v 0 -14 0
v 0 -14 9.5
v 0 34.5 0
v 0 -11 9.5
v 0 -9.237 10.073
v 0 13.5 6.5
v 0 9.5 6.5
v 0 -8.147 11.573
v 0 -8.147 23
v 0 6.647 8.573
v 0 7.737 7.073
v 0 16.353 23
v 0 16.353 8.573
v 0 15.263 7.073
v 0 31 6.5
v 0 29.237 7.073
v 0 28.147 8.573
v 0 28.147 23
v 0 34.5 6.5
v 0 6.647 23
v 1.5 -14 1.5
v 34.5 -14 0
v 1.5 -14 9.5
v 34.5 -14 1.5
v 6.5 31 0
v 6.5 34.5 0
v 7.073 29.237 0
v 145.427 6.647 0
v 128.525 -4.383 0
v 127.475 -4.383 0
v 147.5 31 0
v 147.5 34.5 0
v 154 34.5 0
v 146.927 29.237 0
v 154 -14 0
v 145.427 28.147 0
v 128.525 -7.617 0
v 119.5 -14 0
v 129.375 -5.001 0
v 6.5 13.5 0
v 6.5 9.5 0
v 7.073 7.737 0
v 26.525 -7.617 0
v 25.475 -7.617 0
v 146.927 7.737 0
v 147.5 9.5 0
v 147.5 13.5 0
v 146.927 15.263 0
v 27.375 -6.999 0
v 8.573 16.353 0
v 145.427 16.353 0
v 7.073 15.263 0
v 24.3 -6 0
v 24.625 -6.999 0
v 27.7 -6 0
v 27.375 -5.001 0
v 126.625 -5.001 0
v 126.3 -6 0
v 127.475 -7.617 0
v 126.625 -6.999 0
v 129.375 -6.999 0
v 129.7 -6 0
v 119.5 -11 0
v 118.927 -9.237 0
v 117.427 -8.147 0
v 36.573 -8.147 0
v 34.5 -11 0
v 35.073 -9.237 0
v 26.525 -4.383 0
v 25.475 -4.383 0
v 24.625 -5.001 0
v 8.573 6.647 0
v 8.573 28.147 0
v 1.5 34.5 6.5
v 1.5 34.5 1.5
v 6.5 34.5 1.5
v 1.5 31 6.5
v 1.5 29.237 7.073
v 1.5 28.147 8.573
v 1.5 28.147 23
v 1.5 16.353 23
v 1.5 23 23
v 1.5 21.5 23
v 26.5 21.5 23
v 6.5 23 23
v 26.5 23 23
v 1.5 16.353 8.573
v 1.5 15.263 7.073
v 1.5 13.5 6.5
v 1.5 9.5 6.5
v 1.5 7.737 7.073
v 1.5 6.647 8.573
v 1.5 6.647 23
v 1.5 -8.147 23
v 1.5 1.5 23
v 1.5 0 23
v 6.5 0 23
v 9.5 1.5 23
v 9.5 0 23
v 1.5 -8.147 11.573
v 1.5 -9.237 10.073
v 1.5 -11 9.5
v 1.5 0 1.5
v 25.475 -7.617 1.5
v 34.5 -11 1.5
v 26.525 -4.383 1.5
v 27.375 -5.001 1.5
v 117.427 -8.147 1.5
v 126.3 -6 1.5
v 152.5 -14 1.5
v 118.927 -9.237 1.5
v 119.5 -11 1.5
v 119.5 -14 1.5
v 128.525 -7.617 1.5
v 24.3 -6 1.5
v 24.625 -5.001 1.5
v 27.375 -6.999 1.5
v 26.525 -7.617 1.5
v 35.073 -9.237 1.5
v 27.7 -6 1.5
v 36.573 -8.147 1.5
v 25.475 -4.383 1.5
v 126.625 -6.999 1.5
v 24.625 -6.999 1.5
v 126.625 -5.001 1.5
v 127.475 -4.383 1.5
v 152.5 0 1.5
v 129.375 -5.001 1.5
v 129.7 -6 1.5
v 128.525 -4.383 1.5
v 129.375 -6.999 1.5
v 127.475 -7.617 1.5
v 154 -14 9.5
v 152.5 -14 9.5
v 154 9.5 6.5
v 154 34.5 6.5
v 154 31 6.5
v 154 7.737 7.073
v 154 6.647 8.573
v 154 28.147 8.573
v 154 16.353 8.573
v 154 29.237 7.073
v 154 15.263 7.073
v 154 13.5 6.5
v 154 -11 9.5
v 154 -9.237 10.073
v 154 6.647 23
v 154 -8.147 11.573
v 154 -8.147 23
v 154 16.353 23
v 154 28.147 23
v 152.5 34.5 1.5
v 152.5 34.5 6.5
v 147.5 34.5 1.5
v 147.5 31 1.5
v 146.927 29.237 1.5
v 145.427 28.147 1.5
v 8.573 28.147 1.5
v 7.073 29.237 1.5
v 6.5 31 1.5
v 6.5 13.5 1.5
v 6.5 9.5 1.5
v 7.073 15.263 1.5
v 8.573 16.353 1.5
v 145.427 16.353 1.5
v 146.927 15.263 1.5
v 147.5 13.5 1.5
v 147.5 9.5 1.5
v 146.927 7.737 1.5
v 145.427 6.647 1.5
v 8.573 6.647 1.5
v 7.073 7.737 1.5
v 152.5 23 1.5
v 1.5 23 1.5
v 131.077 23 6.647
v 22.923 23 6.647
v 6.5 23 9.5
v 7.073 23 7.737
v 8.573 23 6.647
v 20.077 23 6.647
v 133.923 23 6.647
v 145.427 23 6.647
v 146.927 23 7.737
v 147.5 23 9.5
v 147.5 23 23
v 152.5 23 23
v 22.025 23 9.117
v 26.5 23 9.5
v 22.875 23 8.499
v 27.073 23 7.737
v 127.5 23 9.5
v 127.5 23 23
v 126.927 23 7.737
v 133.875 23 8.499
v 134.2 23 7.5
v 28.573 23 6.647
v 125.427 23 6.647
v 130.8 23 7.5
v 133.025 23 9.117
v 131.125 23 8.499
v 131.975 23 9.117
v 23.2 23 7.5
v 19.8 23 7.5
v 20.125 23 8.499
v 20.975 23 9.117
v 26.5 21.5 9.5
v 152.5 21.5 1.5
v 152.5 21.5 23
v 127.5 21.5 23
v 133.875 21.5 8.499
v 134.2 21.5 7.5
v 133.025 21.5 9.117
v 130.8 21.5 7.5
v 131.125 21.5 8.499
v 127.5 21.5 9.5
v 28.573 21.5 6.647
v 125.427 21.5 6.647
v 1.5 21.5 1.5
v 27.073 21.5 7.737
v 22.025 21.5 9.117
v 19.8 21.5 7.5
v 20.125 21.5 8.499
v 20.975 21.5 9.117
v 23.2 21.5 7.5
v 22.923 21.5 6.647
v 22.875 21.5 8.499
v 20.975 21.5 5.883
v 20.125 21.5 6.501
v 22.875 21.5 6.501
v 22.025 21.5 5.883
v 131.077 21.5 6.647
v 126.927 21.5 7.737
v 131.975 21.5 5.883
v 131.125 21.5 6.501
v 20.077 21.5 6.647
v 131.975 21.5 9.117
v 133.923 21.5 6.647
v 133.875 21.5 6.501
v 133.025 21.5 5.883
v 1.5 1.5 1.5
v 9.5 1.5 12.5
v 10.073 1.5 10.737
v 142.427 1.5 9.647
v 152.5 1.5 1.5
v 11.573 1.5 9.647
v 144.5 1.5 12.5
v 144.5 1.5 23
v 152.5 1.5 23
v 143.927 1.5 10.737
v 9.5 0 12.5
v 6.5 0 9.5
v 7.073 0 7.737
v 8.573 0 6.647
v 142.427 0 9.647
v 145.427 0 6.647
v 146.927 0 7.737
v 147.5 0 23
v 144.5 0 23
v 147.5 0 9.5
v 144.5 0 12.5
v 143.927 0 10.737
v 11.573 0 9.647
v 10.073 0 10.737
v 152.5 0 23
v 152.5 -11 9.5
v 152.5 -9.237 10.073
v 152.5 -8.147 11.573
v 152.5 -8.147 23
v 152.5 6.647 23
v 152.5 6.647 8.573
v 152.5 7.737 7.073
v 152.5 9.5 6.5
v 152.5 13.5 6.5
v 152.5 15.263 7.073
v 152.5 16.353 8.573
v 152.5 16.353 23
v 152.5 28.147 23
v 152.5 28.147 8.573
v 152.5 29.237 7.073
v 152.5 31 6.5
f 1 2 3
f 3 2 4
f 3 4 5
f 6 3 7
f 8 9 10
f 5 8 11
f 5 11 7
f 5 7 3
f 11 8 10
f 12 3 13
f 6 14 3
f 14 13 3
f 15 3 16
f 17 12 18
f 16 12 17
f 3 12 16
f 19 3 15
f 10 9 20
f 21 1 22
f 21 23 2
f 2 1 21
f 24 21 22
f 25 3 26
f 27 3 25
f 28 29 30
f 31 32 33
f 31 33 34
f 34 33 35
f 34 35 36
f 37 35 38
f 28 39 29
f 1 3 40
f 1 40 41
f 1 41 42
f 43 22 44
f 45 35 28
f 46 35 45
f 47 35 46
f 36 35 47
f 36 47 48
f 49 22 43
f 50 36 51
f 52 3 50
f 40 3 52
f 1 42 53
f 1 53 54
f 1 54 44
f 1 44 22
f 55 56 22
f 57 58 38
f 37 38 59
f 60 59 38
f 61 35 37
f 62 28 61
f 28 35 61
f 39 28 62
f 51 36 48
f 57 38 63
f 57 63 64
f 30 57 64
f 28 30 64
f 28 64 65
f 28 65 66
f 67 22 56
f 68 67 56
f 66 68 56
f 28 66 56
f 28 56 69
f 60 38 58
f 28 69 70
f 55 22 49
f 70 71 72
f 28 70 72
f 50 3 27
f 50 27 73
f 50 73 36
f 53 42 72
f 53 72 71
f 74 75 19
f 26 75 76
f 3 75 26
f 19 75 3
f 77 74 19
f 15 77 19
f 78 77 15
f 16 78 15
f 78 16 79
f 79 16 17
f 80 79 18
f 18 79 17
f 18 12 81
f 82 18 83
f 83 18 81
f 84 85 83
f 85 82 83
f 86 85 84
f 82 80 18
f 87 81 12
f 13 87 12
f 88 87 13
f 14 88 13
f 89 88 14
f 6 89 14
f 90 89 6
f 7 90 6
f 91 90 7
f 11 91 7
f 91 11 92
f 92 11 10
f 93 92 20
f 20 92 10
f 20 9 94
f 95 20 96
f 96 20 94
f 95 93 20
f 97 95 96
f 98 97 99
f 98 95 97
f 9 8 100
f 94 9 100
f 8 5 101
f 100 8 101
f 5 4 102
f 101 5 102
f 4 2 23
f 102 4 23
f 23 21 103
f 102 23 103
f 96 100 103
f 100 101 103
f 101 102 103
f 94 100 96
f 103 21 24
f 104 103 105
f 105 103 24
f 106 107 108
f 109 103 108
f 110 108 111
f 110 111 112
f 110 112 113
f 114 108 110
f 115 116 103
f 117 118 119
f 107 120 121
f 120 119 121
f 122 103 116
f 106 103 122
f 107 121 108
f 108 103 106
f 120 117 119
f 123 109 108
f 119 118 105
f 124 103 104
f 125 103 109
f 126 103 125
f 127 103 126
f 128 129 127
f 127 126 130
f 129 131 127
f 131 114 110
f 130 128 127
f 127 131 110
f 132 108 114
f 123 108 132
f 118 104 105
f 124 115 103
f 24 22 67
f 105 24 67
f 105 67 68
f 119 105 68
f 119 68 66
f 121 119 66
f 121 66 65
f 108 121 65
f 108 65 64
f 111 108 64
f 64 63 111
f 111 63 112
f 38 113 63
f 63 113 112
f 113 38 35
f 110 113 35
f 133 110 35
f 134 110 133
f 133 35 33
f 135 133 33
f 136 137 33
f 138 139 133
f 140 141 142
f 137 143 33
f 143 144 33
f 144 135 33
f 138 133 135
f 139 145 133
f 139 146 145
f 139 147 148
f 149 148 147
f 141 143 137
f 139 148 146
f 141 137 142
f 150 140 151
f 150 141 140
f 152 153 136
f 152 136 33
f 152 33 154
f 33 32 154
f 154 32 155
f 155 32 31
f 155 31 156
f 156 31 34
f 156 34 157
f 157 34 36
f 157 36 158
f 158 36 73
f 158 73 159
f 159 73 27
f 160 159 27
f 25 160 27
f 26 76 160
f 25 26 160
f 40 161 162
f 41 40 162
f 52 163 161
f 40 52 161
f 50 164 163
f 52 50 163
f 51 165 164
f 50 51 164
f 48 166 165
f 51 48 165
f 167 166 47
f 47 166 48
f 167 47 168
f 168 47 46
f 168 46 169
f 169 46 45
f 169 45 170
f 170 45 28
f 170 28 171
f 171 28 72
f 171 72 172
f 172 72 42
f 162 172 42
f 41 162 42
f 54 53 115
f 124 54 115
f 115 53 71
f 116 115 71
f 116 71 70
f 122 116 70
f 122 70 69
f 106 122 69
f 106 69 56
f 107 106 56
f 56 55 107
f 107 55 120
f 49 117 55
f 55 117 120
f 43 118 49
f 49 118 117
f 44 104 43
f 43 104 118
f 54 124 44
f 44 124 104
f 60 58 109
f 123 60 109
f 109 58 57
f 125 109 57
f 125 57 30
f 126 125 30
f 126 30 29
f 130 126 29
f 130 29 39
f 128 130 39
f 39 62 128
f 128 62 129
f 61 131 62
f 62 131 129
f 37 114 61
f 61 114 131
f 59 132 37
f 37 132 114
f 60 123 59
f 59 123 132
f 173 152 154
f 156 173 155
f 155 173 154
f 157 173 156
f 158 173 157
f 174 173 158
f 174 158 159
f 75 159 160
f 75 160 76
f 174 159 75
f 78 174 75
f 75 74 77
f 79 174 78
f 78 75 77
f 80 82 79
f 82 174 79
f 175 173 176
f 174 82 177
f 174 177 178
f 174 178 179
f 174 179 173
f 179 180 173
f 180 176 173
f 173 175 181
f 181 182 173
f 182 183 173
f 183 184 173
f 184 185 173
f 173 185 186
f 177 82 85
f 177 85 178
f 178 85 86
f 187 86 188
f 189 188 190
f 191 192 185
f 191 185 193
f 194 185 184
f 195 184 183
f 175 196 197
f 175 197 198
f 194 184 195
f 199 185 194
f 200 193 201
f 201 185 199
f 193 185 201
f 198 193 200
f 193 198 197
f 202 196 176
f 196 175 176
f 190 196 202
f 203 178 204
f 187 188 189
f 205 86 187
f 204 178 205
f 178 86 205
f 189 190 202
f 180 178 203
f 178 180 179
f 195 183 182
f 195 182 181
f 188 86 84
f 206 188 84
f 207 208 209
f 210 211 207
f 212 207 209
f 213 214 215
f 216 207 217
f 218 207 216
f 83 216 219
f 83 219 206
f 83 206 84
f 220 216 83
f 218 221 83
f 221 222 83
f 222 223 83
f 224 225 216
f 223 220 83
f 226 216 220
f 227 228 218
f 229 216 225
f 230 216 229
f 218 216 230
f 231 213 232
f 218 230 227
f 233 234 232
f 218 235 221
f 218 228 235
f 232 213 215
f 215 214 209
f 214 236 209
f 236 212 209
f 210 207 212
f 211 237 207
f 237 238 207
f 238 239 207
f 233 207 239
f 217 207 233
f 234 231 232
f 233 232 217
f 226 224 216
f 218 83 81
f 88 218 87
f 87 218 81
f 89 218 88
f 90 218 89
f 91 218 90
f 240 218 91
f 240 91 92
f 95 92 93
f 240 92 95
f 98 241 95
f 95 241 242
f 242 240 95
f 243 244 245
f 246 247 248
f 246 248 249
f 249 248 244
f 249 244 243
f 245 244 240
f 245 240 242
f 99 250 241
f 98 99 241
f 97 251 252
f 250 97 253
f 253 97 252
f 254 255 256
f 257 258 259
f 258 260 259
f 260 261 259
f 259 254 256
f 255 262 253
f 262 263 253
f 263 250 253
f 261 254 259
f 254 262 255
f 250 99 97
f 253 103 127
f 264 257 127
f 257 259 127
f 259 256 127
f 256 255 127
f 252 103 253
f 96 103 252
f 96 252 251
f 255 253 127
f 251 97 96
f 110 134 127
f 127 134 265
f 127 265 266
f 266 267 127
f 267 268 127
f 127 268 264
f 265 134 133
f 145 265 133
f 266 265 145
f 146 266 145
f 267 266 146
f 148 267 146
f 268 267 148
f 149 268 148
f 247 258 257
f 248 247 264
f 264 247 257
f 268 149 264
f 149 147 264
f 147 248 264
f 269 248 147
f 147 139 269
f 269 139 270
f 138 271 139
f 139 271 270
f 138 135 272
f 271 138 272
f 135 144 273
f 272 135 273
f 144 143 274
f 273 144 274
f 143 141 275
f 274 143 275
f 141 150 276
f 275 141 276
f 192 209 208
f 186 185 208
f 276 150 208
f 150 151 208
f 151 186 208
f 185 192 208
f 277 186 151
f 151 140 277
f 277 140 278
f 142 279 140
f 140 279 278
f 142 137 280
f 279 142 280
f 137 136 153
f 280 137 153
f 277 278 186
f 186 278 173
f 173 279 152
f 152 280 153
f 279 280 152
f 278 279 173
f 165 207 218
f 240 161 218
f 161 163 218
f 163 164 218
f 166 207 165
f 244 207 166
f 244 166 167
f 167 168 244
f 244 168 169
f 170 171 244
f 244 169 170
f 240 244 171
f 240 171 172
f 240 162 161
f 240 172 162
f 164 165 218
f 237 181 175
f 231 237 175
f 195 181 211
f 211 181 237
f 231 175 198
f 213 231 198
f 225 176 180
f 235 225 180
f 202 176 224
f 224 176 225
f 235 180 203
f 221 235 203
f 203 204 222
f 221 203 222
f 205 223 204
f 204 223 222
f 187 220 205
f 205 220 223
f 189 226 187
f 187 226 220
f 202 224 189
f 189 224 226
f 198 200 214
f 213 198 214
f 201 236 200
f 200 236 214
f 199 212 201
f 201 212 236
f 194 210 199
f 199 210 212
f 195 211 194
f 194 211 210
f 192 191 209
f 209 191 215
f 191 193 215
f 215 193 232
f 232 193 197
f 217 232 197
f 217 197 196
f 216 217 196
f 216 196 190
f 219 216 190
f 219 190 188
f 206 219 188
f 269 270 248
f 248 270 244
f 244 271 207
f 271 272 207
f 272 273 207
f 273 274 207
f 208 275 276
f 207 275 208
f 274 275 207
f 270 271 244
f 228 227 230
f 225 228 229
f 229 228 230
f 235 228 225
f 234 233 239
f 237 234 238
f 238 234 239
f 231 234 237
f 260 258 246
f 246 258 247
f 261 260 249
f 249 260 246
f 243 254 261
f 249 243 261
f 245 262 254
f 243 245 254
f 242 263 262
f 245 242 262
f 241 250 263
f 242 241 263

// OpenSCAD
Dl = 151;
Db = 20;
Dh = 20;

Nl = 151;
Nb = 20;
Nh = 20;
NWr = 3;
NWb = 25;

Nb2 = 25;

d = 1.5;

Wb = 5;
Wr = 3;

$fn = 10;

module frame(l, b, h, Wb, Wr, d)
{
	difference(){
		cube([l+2*d,b+2*d,h+2*d]);
		translate([d,d,d])cube([l,b,h+4*d]);
	
		rotate([90,0,0])
		translate([Wb+Wr+d,Wb+Wr+d,-4*d-b]){
			minkowski(){
				cube([l-2*(Wb+Wr),max(l,b,h)+4*d+2*Wr,l+8*d]);
				cylinder(r=Wr,h=1);
			}
		}
	
		rotate([0,-90,0])
		translate([Wb+Wr+d,Wb+Wr+d,-4*d-l]){
			minkowski(){
				cube([max(l,b,h)+4*d+2*Wr,b-2*(Wb+Wr),l+8*d]);
				cylinder(r=Wr,h=1);
			}
		}
	
		translate([Wb+Wr+d,Wb+Wr+d,-4*d]){
			minkowski(){
				cube([l-2*(Wb+Wr),b-2*(Wb+Wr),h+8*d]);
				cylinder(r=Wr,h=1);
			}
		}
	}
}

module frame2(l, b, h, Wl, Wb, Wr, d, rl, xl, yl)
{
	difference(){
		cube([l+2*d,b+2*d,h+2*d]);
		translate([d,d,d])cube([l,b,h+4*d]);
	
		rotate([90,0,0]){
			translate([Wl+Wr+d,Wb+Wr+d,-4*d-b]){
				minkowski(){
					cube([l-2*(Wl+Wr),max(l,b,h)+4*d+2*Wr,l+8*d]);
					cylinder(r=Wr,h=1);
				}
			}
			translate([xl,yl,-2*d])#cylinder(r=rl, h=3*d);
			translate([l+2*d-xl,yl,-2*d])#cylinder(r=rl, h=3*d);
		}
		rotate([0,-90,0]){
			translate([Wb+Wr+d,Wb+Wr+d,-4*d-l]){
				minkowski(){
					cube([max(l,b,h)+4*d+2*Wr,b-2*(Wb+Wr),l+8*d]);
					cylinder(r=Wr,h=1);
				}
			}
		}
		translate([Wb+Wr+d,Wb+Wr+d,-4*d]){
			minkowski(){
				cube([l-2*(Wb+Wr),b-2*(Wb+Wr),h+8*d]);
				cylinder(r=Wr,h=1);
			}
		}
	}
}

module frame3(l, b, h, Wl, Wb, Wr, d, rl, xl, yl)
{
	difference(){
		cube([l+2*d,b+2*d,h+2*d]);
		translate([d,d,d])cube([l,b,h+4*d]);
	
		rotate([90,0,0]){
			translate([Wb+Wr+d,Wb+Wr+d,-4*d-b]){
				minkowski(){
					cube([l-2*(Wb+Wr),max(l,b,h)+4*d+2*Wr,l+8*d]);
					cylinder(r=Wr,h=1);
				}
			}
		}
		rotate([0,-90,0]){
			translate([Wb+Wr+d,Wb+Wr+d,-4*d-l]){
				minkowski(){
					cube([max(l,b,h)+4*d+2*Wr,b-2*(Wb+Wr),l+8*d]);
					cylinder(r=Wr,h=1);
				}
			}
		}
		translate([Wl+Wr+d,Wb+Wr+d,-4*d]){
			minkowski(){
				cube([l-2*(Wl+Wr),b-2*(Wb+Wr),h+8*d]);
				cylinder(r=Wr,h=1);
			}

		}
		translate([xl,yl,-2*d])#cylinder(r=rl, h=4*d);
		translate([l+2*d-xl,yl,-2*d])#cylinder(r=rl, h=4*d);
	}
}

module frame4(l, b, h, Wl, Wb, Wr, d, rl, xl, yl,xl2,yl2)
{
	difference(){
		cube([l+2*d,b+2*d,h+2*d]);
		translate([d,d,d])cube([l,b,h+4*d]);
	
		rotate([90,0,0]){
			translate([Wb+Wr+d,Wb+Wr+d,-4*d-b]){
				minkowski(){
					cube([l-2*(Wb+Wr),max(l,b,h)+4*d+2*Wr,l+8*d]);
					cylinder(r=Wr,h=1);
				}
			}
		}
		rotate([0,-90,0]){
			translate([Wb+Wr+d,Wb+Wr+d,-4*d-l]){
				minkowski(){
					cube([max(l,b,h)+4*d+2*Wr,b-2*(Wb+Wr),l+8*d]);
					cylinder(r=Wr,h=1);
				}
			}
		}
		translate([Wl+Wr+d,Wb+Wr+d,-4*d]){
			minkowski(){
				cube([l-2*(Wb+Wr),b-2*(Wb+Wr),h+8*d]);
				cylinder(r=Wr,h=1);
			}

		}
		translate([xl,yl,-2*d])#cylinder(r=rl, h=4*d);
		translate([l+2*d-xl2,yl2,-2*d])#cylinder(r=rl, h=4*d);
	}
}

frame(Dl, Db, Dh, Wb, Wr, d);
difference(){
	translate([(Dl-Nl)/2,Db+d,0]) frame2(Nl, Nb, Nh, NWb, Wb, NWr, d, 1.7,20+d,6+d);
	translate([(Dl-Nl)/2-d,+Db+Nb/2+3*d,-d]) cube([Nl+4*d,Nb+2*d,Nh+4*d]);
}
mirror([0,1,0])
difference(){
	translate([0,-d,0]) frame3(Nl, Nb2, Nh, NWb+8, 8, NWr, d, 1.7,24.5+d,6+d);
	translate([(Dl-Nl)/2-d,Nb2/2+d,-d]) #cube([Nl+4*d,Nb2+2*d,Nh+4*d]);
}
